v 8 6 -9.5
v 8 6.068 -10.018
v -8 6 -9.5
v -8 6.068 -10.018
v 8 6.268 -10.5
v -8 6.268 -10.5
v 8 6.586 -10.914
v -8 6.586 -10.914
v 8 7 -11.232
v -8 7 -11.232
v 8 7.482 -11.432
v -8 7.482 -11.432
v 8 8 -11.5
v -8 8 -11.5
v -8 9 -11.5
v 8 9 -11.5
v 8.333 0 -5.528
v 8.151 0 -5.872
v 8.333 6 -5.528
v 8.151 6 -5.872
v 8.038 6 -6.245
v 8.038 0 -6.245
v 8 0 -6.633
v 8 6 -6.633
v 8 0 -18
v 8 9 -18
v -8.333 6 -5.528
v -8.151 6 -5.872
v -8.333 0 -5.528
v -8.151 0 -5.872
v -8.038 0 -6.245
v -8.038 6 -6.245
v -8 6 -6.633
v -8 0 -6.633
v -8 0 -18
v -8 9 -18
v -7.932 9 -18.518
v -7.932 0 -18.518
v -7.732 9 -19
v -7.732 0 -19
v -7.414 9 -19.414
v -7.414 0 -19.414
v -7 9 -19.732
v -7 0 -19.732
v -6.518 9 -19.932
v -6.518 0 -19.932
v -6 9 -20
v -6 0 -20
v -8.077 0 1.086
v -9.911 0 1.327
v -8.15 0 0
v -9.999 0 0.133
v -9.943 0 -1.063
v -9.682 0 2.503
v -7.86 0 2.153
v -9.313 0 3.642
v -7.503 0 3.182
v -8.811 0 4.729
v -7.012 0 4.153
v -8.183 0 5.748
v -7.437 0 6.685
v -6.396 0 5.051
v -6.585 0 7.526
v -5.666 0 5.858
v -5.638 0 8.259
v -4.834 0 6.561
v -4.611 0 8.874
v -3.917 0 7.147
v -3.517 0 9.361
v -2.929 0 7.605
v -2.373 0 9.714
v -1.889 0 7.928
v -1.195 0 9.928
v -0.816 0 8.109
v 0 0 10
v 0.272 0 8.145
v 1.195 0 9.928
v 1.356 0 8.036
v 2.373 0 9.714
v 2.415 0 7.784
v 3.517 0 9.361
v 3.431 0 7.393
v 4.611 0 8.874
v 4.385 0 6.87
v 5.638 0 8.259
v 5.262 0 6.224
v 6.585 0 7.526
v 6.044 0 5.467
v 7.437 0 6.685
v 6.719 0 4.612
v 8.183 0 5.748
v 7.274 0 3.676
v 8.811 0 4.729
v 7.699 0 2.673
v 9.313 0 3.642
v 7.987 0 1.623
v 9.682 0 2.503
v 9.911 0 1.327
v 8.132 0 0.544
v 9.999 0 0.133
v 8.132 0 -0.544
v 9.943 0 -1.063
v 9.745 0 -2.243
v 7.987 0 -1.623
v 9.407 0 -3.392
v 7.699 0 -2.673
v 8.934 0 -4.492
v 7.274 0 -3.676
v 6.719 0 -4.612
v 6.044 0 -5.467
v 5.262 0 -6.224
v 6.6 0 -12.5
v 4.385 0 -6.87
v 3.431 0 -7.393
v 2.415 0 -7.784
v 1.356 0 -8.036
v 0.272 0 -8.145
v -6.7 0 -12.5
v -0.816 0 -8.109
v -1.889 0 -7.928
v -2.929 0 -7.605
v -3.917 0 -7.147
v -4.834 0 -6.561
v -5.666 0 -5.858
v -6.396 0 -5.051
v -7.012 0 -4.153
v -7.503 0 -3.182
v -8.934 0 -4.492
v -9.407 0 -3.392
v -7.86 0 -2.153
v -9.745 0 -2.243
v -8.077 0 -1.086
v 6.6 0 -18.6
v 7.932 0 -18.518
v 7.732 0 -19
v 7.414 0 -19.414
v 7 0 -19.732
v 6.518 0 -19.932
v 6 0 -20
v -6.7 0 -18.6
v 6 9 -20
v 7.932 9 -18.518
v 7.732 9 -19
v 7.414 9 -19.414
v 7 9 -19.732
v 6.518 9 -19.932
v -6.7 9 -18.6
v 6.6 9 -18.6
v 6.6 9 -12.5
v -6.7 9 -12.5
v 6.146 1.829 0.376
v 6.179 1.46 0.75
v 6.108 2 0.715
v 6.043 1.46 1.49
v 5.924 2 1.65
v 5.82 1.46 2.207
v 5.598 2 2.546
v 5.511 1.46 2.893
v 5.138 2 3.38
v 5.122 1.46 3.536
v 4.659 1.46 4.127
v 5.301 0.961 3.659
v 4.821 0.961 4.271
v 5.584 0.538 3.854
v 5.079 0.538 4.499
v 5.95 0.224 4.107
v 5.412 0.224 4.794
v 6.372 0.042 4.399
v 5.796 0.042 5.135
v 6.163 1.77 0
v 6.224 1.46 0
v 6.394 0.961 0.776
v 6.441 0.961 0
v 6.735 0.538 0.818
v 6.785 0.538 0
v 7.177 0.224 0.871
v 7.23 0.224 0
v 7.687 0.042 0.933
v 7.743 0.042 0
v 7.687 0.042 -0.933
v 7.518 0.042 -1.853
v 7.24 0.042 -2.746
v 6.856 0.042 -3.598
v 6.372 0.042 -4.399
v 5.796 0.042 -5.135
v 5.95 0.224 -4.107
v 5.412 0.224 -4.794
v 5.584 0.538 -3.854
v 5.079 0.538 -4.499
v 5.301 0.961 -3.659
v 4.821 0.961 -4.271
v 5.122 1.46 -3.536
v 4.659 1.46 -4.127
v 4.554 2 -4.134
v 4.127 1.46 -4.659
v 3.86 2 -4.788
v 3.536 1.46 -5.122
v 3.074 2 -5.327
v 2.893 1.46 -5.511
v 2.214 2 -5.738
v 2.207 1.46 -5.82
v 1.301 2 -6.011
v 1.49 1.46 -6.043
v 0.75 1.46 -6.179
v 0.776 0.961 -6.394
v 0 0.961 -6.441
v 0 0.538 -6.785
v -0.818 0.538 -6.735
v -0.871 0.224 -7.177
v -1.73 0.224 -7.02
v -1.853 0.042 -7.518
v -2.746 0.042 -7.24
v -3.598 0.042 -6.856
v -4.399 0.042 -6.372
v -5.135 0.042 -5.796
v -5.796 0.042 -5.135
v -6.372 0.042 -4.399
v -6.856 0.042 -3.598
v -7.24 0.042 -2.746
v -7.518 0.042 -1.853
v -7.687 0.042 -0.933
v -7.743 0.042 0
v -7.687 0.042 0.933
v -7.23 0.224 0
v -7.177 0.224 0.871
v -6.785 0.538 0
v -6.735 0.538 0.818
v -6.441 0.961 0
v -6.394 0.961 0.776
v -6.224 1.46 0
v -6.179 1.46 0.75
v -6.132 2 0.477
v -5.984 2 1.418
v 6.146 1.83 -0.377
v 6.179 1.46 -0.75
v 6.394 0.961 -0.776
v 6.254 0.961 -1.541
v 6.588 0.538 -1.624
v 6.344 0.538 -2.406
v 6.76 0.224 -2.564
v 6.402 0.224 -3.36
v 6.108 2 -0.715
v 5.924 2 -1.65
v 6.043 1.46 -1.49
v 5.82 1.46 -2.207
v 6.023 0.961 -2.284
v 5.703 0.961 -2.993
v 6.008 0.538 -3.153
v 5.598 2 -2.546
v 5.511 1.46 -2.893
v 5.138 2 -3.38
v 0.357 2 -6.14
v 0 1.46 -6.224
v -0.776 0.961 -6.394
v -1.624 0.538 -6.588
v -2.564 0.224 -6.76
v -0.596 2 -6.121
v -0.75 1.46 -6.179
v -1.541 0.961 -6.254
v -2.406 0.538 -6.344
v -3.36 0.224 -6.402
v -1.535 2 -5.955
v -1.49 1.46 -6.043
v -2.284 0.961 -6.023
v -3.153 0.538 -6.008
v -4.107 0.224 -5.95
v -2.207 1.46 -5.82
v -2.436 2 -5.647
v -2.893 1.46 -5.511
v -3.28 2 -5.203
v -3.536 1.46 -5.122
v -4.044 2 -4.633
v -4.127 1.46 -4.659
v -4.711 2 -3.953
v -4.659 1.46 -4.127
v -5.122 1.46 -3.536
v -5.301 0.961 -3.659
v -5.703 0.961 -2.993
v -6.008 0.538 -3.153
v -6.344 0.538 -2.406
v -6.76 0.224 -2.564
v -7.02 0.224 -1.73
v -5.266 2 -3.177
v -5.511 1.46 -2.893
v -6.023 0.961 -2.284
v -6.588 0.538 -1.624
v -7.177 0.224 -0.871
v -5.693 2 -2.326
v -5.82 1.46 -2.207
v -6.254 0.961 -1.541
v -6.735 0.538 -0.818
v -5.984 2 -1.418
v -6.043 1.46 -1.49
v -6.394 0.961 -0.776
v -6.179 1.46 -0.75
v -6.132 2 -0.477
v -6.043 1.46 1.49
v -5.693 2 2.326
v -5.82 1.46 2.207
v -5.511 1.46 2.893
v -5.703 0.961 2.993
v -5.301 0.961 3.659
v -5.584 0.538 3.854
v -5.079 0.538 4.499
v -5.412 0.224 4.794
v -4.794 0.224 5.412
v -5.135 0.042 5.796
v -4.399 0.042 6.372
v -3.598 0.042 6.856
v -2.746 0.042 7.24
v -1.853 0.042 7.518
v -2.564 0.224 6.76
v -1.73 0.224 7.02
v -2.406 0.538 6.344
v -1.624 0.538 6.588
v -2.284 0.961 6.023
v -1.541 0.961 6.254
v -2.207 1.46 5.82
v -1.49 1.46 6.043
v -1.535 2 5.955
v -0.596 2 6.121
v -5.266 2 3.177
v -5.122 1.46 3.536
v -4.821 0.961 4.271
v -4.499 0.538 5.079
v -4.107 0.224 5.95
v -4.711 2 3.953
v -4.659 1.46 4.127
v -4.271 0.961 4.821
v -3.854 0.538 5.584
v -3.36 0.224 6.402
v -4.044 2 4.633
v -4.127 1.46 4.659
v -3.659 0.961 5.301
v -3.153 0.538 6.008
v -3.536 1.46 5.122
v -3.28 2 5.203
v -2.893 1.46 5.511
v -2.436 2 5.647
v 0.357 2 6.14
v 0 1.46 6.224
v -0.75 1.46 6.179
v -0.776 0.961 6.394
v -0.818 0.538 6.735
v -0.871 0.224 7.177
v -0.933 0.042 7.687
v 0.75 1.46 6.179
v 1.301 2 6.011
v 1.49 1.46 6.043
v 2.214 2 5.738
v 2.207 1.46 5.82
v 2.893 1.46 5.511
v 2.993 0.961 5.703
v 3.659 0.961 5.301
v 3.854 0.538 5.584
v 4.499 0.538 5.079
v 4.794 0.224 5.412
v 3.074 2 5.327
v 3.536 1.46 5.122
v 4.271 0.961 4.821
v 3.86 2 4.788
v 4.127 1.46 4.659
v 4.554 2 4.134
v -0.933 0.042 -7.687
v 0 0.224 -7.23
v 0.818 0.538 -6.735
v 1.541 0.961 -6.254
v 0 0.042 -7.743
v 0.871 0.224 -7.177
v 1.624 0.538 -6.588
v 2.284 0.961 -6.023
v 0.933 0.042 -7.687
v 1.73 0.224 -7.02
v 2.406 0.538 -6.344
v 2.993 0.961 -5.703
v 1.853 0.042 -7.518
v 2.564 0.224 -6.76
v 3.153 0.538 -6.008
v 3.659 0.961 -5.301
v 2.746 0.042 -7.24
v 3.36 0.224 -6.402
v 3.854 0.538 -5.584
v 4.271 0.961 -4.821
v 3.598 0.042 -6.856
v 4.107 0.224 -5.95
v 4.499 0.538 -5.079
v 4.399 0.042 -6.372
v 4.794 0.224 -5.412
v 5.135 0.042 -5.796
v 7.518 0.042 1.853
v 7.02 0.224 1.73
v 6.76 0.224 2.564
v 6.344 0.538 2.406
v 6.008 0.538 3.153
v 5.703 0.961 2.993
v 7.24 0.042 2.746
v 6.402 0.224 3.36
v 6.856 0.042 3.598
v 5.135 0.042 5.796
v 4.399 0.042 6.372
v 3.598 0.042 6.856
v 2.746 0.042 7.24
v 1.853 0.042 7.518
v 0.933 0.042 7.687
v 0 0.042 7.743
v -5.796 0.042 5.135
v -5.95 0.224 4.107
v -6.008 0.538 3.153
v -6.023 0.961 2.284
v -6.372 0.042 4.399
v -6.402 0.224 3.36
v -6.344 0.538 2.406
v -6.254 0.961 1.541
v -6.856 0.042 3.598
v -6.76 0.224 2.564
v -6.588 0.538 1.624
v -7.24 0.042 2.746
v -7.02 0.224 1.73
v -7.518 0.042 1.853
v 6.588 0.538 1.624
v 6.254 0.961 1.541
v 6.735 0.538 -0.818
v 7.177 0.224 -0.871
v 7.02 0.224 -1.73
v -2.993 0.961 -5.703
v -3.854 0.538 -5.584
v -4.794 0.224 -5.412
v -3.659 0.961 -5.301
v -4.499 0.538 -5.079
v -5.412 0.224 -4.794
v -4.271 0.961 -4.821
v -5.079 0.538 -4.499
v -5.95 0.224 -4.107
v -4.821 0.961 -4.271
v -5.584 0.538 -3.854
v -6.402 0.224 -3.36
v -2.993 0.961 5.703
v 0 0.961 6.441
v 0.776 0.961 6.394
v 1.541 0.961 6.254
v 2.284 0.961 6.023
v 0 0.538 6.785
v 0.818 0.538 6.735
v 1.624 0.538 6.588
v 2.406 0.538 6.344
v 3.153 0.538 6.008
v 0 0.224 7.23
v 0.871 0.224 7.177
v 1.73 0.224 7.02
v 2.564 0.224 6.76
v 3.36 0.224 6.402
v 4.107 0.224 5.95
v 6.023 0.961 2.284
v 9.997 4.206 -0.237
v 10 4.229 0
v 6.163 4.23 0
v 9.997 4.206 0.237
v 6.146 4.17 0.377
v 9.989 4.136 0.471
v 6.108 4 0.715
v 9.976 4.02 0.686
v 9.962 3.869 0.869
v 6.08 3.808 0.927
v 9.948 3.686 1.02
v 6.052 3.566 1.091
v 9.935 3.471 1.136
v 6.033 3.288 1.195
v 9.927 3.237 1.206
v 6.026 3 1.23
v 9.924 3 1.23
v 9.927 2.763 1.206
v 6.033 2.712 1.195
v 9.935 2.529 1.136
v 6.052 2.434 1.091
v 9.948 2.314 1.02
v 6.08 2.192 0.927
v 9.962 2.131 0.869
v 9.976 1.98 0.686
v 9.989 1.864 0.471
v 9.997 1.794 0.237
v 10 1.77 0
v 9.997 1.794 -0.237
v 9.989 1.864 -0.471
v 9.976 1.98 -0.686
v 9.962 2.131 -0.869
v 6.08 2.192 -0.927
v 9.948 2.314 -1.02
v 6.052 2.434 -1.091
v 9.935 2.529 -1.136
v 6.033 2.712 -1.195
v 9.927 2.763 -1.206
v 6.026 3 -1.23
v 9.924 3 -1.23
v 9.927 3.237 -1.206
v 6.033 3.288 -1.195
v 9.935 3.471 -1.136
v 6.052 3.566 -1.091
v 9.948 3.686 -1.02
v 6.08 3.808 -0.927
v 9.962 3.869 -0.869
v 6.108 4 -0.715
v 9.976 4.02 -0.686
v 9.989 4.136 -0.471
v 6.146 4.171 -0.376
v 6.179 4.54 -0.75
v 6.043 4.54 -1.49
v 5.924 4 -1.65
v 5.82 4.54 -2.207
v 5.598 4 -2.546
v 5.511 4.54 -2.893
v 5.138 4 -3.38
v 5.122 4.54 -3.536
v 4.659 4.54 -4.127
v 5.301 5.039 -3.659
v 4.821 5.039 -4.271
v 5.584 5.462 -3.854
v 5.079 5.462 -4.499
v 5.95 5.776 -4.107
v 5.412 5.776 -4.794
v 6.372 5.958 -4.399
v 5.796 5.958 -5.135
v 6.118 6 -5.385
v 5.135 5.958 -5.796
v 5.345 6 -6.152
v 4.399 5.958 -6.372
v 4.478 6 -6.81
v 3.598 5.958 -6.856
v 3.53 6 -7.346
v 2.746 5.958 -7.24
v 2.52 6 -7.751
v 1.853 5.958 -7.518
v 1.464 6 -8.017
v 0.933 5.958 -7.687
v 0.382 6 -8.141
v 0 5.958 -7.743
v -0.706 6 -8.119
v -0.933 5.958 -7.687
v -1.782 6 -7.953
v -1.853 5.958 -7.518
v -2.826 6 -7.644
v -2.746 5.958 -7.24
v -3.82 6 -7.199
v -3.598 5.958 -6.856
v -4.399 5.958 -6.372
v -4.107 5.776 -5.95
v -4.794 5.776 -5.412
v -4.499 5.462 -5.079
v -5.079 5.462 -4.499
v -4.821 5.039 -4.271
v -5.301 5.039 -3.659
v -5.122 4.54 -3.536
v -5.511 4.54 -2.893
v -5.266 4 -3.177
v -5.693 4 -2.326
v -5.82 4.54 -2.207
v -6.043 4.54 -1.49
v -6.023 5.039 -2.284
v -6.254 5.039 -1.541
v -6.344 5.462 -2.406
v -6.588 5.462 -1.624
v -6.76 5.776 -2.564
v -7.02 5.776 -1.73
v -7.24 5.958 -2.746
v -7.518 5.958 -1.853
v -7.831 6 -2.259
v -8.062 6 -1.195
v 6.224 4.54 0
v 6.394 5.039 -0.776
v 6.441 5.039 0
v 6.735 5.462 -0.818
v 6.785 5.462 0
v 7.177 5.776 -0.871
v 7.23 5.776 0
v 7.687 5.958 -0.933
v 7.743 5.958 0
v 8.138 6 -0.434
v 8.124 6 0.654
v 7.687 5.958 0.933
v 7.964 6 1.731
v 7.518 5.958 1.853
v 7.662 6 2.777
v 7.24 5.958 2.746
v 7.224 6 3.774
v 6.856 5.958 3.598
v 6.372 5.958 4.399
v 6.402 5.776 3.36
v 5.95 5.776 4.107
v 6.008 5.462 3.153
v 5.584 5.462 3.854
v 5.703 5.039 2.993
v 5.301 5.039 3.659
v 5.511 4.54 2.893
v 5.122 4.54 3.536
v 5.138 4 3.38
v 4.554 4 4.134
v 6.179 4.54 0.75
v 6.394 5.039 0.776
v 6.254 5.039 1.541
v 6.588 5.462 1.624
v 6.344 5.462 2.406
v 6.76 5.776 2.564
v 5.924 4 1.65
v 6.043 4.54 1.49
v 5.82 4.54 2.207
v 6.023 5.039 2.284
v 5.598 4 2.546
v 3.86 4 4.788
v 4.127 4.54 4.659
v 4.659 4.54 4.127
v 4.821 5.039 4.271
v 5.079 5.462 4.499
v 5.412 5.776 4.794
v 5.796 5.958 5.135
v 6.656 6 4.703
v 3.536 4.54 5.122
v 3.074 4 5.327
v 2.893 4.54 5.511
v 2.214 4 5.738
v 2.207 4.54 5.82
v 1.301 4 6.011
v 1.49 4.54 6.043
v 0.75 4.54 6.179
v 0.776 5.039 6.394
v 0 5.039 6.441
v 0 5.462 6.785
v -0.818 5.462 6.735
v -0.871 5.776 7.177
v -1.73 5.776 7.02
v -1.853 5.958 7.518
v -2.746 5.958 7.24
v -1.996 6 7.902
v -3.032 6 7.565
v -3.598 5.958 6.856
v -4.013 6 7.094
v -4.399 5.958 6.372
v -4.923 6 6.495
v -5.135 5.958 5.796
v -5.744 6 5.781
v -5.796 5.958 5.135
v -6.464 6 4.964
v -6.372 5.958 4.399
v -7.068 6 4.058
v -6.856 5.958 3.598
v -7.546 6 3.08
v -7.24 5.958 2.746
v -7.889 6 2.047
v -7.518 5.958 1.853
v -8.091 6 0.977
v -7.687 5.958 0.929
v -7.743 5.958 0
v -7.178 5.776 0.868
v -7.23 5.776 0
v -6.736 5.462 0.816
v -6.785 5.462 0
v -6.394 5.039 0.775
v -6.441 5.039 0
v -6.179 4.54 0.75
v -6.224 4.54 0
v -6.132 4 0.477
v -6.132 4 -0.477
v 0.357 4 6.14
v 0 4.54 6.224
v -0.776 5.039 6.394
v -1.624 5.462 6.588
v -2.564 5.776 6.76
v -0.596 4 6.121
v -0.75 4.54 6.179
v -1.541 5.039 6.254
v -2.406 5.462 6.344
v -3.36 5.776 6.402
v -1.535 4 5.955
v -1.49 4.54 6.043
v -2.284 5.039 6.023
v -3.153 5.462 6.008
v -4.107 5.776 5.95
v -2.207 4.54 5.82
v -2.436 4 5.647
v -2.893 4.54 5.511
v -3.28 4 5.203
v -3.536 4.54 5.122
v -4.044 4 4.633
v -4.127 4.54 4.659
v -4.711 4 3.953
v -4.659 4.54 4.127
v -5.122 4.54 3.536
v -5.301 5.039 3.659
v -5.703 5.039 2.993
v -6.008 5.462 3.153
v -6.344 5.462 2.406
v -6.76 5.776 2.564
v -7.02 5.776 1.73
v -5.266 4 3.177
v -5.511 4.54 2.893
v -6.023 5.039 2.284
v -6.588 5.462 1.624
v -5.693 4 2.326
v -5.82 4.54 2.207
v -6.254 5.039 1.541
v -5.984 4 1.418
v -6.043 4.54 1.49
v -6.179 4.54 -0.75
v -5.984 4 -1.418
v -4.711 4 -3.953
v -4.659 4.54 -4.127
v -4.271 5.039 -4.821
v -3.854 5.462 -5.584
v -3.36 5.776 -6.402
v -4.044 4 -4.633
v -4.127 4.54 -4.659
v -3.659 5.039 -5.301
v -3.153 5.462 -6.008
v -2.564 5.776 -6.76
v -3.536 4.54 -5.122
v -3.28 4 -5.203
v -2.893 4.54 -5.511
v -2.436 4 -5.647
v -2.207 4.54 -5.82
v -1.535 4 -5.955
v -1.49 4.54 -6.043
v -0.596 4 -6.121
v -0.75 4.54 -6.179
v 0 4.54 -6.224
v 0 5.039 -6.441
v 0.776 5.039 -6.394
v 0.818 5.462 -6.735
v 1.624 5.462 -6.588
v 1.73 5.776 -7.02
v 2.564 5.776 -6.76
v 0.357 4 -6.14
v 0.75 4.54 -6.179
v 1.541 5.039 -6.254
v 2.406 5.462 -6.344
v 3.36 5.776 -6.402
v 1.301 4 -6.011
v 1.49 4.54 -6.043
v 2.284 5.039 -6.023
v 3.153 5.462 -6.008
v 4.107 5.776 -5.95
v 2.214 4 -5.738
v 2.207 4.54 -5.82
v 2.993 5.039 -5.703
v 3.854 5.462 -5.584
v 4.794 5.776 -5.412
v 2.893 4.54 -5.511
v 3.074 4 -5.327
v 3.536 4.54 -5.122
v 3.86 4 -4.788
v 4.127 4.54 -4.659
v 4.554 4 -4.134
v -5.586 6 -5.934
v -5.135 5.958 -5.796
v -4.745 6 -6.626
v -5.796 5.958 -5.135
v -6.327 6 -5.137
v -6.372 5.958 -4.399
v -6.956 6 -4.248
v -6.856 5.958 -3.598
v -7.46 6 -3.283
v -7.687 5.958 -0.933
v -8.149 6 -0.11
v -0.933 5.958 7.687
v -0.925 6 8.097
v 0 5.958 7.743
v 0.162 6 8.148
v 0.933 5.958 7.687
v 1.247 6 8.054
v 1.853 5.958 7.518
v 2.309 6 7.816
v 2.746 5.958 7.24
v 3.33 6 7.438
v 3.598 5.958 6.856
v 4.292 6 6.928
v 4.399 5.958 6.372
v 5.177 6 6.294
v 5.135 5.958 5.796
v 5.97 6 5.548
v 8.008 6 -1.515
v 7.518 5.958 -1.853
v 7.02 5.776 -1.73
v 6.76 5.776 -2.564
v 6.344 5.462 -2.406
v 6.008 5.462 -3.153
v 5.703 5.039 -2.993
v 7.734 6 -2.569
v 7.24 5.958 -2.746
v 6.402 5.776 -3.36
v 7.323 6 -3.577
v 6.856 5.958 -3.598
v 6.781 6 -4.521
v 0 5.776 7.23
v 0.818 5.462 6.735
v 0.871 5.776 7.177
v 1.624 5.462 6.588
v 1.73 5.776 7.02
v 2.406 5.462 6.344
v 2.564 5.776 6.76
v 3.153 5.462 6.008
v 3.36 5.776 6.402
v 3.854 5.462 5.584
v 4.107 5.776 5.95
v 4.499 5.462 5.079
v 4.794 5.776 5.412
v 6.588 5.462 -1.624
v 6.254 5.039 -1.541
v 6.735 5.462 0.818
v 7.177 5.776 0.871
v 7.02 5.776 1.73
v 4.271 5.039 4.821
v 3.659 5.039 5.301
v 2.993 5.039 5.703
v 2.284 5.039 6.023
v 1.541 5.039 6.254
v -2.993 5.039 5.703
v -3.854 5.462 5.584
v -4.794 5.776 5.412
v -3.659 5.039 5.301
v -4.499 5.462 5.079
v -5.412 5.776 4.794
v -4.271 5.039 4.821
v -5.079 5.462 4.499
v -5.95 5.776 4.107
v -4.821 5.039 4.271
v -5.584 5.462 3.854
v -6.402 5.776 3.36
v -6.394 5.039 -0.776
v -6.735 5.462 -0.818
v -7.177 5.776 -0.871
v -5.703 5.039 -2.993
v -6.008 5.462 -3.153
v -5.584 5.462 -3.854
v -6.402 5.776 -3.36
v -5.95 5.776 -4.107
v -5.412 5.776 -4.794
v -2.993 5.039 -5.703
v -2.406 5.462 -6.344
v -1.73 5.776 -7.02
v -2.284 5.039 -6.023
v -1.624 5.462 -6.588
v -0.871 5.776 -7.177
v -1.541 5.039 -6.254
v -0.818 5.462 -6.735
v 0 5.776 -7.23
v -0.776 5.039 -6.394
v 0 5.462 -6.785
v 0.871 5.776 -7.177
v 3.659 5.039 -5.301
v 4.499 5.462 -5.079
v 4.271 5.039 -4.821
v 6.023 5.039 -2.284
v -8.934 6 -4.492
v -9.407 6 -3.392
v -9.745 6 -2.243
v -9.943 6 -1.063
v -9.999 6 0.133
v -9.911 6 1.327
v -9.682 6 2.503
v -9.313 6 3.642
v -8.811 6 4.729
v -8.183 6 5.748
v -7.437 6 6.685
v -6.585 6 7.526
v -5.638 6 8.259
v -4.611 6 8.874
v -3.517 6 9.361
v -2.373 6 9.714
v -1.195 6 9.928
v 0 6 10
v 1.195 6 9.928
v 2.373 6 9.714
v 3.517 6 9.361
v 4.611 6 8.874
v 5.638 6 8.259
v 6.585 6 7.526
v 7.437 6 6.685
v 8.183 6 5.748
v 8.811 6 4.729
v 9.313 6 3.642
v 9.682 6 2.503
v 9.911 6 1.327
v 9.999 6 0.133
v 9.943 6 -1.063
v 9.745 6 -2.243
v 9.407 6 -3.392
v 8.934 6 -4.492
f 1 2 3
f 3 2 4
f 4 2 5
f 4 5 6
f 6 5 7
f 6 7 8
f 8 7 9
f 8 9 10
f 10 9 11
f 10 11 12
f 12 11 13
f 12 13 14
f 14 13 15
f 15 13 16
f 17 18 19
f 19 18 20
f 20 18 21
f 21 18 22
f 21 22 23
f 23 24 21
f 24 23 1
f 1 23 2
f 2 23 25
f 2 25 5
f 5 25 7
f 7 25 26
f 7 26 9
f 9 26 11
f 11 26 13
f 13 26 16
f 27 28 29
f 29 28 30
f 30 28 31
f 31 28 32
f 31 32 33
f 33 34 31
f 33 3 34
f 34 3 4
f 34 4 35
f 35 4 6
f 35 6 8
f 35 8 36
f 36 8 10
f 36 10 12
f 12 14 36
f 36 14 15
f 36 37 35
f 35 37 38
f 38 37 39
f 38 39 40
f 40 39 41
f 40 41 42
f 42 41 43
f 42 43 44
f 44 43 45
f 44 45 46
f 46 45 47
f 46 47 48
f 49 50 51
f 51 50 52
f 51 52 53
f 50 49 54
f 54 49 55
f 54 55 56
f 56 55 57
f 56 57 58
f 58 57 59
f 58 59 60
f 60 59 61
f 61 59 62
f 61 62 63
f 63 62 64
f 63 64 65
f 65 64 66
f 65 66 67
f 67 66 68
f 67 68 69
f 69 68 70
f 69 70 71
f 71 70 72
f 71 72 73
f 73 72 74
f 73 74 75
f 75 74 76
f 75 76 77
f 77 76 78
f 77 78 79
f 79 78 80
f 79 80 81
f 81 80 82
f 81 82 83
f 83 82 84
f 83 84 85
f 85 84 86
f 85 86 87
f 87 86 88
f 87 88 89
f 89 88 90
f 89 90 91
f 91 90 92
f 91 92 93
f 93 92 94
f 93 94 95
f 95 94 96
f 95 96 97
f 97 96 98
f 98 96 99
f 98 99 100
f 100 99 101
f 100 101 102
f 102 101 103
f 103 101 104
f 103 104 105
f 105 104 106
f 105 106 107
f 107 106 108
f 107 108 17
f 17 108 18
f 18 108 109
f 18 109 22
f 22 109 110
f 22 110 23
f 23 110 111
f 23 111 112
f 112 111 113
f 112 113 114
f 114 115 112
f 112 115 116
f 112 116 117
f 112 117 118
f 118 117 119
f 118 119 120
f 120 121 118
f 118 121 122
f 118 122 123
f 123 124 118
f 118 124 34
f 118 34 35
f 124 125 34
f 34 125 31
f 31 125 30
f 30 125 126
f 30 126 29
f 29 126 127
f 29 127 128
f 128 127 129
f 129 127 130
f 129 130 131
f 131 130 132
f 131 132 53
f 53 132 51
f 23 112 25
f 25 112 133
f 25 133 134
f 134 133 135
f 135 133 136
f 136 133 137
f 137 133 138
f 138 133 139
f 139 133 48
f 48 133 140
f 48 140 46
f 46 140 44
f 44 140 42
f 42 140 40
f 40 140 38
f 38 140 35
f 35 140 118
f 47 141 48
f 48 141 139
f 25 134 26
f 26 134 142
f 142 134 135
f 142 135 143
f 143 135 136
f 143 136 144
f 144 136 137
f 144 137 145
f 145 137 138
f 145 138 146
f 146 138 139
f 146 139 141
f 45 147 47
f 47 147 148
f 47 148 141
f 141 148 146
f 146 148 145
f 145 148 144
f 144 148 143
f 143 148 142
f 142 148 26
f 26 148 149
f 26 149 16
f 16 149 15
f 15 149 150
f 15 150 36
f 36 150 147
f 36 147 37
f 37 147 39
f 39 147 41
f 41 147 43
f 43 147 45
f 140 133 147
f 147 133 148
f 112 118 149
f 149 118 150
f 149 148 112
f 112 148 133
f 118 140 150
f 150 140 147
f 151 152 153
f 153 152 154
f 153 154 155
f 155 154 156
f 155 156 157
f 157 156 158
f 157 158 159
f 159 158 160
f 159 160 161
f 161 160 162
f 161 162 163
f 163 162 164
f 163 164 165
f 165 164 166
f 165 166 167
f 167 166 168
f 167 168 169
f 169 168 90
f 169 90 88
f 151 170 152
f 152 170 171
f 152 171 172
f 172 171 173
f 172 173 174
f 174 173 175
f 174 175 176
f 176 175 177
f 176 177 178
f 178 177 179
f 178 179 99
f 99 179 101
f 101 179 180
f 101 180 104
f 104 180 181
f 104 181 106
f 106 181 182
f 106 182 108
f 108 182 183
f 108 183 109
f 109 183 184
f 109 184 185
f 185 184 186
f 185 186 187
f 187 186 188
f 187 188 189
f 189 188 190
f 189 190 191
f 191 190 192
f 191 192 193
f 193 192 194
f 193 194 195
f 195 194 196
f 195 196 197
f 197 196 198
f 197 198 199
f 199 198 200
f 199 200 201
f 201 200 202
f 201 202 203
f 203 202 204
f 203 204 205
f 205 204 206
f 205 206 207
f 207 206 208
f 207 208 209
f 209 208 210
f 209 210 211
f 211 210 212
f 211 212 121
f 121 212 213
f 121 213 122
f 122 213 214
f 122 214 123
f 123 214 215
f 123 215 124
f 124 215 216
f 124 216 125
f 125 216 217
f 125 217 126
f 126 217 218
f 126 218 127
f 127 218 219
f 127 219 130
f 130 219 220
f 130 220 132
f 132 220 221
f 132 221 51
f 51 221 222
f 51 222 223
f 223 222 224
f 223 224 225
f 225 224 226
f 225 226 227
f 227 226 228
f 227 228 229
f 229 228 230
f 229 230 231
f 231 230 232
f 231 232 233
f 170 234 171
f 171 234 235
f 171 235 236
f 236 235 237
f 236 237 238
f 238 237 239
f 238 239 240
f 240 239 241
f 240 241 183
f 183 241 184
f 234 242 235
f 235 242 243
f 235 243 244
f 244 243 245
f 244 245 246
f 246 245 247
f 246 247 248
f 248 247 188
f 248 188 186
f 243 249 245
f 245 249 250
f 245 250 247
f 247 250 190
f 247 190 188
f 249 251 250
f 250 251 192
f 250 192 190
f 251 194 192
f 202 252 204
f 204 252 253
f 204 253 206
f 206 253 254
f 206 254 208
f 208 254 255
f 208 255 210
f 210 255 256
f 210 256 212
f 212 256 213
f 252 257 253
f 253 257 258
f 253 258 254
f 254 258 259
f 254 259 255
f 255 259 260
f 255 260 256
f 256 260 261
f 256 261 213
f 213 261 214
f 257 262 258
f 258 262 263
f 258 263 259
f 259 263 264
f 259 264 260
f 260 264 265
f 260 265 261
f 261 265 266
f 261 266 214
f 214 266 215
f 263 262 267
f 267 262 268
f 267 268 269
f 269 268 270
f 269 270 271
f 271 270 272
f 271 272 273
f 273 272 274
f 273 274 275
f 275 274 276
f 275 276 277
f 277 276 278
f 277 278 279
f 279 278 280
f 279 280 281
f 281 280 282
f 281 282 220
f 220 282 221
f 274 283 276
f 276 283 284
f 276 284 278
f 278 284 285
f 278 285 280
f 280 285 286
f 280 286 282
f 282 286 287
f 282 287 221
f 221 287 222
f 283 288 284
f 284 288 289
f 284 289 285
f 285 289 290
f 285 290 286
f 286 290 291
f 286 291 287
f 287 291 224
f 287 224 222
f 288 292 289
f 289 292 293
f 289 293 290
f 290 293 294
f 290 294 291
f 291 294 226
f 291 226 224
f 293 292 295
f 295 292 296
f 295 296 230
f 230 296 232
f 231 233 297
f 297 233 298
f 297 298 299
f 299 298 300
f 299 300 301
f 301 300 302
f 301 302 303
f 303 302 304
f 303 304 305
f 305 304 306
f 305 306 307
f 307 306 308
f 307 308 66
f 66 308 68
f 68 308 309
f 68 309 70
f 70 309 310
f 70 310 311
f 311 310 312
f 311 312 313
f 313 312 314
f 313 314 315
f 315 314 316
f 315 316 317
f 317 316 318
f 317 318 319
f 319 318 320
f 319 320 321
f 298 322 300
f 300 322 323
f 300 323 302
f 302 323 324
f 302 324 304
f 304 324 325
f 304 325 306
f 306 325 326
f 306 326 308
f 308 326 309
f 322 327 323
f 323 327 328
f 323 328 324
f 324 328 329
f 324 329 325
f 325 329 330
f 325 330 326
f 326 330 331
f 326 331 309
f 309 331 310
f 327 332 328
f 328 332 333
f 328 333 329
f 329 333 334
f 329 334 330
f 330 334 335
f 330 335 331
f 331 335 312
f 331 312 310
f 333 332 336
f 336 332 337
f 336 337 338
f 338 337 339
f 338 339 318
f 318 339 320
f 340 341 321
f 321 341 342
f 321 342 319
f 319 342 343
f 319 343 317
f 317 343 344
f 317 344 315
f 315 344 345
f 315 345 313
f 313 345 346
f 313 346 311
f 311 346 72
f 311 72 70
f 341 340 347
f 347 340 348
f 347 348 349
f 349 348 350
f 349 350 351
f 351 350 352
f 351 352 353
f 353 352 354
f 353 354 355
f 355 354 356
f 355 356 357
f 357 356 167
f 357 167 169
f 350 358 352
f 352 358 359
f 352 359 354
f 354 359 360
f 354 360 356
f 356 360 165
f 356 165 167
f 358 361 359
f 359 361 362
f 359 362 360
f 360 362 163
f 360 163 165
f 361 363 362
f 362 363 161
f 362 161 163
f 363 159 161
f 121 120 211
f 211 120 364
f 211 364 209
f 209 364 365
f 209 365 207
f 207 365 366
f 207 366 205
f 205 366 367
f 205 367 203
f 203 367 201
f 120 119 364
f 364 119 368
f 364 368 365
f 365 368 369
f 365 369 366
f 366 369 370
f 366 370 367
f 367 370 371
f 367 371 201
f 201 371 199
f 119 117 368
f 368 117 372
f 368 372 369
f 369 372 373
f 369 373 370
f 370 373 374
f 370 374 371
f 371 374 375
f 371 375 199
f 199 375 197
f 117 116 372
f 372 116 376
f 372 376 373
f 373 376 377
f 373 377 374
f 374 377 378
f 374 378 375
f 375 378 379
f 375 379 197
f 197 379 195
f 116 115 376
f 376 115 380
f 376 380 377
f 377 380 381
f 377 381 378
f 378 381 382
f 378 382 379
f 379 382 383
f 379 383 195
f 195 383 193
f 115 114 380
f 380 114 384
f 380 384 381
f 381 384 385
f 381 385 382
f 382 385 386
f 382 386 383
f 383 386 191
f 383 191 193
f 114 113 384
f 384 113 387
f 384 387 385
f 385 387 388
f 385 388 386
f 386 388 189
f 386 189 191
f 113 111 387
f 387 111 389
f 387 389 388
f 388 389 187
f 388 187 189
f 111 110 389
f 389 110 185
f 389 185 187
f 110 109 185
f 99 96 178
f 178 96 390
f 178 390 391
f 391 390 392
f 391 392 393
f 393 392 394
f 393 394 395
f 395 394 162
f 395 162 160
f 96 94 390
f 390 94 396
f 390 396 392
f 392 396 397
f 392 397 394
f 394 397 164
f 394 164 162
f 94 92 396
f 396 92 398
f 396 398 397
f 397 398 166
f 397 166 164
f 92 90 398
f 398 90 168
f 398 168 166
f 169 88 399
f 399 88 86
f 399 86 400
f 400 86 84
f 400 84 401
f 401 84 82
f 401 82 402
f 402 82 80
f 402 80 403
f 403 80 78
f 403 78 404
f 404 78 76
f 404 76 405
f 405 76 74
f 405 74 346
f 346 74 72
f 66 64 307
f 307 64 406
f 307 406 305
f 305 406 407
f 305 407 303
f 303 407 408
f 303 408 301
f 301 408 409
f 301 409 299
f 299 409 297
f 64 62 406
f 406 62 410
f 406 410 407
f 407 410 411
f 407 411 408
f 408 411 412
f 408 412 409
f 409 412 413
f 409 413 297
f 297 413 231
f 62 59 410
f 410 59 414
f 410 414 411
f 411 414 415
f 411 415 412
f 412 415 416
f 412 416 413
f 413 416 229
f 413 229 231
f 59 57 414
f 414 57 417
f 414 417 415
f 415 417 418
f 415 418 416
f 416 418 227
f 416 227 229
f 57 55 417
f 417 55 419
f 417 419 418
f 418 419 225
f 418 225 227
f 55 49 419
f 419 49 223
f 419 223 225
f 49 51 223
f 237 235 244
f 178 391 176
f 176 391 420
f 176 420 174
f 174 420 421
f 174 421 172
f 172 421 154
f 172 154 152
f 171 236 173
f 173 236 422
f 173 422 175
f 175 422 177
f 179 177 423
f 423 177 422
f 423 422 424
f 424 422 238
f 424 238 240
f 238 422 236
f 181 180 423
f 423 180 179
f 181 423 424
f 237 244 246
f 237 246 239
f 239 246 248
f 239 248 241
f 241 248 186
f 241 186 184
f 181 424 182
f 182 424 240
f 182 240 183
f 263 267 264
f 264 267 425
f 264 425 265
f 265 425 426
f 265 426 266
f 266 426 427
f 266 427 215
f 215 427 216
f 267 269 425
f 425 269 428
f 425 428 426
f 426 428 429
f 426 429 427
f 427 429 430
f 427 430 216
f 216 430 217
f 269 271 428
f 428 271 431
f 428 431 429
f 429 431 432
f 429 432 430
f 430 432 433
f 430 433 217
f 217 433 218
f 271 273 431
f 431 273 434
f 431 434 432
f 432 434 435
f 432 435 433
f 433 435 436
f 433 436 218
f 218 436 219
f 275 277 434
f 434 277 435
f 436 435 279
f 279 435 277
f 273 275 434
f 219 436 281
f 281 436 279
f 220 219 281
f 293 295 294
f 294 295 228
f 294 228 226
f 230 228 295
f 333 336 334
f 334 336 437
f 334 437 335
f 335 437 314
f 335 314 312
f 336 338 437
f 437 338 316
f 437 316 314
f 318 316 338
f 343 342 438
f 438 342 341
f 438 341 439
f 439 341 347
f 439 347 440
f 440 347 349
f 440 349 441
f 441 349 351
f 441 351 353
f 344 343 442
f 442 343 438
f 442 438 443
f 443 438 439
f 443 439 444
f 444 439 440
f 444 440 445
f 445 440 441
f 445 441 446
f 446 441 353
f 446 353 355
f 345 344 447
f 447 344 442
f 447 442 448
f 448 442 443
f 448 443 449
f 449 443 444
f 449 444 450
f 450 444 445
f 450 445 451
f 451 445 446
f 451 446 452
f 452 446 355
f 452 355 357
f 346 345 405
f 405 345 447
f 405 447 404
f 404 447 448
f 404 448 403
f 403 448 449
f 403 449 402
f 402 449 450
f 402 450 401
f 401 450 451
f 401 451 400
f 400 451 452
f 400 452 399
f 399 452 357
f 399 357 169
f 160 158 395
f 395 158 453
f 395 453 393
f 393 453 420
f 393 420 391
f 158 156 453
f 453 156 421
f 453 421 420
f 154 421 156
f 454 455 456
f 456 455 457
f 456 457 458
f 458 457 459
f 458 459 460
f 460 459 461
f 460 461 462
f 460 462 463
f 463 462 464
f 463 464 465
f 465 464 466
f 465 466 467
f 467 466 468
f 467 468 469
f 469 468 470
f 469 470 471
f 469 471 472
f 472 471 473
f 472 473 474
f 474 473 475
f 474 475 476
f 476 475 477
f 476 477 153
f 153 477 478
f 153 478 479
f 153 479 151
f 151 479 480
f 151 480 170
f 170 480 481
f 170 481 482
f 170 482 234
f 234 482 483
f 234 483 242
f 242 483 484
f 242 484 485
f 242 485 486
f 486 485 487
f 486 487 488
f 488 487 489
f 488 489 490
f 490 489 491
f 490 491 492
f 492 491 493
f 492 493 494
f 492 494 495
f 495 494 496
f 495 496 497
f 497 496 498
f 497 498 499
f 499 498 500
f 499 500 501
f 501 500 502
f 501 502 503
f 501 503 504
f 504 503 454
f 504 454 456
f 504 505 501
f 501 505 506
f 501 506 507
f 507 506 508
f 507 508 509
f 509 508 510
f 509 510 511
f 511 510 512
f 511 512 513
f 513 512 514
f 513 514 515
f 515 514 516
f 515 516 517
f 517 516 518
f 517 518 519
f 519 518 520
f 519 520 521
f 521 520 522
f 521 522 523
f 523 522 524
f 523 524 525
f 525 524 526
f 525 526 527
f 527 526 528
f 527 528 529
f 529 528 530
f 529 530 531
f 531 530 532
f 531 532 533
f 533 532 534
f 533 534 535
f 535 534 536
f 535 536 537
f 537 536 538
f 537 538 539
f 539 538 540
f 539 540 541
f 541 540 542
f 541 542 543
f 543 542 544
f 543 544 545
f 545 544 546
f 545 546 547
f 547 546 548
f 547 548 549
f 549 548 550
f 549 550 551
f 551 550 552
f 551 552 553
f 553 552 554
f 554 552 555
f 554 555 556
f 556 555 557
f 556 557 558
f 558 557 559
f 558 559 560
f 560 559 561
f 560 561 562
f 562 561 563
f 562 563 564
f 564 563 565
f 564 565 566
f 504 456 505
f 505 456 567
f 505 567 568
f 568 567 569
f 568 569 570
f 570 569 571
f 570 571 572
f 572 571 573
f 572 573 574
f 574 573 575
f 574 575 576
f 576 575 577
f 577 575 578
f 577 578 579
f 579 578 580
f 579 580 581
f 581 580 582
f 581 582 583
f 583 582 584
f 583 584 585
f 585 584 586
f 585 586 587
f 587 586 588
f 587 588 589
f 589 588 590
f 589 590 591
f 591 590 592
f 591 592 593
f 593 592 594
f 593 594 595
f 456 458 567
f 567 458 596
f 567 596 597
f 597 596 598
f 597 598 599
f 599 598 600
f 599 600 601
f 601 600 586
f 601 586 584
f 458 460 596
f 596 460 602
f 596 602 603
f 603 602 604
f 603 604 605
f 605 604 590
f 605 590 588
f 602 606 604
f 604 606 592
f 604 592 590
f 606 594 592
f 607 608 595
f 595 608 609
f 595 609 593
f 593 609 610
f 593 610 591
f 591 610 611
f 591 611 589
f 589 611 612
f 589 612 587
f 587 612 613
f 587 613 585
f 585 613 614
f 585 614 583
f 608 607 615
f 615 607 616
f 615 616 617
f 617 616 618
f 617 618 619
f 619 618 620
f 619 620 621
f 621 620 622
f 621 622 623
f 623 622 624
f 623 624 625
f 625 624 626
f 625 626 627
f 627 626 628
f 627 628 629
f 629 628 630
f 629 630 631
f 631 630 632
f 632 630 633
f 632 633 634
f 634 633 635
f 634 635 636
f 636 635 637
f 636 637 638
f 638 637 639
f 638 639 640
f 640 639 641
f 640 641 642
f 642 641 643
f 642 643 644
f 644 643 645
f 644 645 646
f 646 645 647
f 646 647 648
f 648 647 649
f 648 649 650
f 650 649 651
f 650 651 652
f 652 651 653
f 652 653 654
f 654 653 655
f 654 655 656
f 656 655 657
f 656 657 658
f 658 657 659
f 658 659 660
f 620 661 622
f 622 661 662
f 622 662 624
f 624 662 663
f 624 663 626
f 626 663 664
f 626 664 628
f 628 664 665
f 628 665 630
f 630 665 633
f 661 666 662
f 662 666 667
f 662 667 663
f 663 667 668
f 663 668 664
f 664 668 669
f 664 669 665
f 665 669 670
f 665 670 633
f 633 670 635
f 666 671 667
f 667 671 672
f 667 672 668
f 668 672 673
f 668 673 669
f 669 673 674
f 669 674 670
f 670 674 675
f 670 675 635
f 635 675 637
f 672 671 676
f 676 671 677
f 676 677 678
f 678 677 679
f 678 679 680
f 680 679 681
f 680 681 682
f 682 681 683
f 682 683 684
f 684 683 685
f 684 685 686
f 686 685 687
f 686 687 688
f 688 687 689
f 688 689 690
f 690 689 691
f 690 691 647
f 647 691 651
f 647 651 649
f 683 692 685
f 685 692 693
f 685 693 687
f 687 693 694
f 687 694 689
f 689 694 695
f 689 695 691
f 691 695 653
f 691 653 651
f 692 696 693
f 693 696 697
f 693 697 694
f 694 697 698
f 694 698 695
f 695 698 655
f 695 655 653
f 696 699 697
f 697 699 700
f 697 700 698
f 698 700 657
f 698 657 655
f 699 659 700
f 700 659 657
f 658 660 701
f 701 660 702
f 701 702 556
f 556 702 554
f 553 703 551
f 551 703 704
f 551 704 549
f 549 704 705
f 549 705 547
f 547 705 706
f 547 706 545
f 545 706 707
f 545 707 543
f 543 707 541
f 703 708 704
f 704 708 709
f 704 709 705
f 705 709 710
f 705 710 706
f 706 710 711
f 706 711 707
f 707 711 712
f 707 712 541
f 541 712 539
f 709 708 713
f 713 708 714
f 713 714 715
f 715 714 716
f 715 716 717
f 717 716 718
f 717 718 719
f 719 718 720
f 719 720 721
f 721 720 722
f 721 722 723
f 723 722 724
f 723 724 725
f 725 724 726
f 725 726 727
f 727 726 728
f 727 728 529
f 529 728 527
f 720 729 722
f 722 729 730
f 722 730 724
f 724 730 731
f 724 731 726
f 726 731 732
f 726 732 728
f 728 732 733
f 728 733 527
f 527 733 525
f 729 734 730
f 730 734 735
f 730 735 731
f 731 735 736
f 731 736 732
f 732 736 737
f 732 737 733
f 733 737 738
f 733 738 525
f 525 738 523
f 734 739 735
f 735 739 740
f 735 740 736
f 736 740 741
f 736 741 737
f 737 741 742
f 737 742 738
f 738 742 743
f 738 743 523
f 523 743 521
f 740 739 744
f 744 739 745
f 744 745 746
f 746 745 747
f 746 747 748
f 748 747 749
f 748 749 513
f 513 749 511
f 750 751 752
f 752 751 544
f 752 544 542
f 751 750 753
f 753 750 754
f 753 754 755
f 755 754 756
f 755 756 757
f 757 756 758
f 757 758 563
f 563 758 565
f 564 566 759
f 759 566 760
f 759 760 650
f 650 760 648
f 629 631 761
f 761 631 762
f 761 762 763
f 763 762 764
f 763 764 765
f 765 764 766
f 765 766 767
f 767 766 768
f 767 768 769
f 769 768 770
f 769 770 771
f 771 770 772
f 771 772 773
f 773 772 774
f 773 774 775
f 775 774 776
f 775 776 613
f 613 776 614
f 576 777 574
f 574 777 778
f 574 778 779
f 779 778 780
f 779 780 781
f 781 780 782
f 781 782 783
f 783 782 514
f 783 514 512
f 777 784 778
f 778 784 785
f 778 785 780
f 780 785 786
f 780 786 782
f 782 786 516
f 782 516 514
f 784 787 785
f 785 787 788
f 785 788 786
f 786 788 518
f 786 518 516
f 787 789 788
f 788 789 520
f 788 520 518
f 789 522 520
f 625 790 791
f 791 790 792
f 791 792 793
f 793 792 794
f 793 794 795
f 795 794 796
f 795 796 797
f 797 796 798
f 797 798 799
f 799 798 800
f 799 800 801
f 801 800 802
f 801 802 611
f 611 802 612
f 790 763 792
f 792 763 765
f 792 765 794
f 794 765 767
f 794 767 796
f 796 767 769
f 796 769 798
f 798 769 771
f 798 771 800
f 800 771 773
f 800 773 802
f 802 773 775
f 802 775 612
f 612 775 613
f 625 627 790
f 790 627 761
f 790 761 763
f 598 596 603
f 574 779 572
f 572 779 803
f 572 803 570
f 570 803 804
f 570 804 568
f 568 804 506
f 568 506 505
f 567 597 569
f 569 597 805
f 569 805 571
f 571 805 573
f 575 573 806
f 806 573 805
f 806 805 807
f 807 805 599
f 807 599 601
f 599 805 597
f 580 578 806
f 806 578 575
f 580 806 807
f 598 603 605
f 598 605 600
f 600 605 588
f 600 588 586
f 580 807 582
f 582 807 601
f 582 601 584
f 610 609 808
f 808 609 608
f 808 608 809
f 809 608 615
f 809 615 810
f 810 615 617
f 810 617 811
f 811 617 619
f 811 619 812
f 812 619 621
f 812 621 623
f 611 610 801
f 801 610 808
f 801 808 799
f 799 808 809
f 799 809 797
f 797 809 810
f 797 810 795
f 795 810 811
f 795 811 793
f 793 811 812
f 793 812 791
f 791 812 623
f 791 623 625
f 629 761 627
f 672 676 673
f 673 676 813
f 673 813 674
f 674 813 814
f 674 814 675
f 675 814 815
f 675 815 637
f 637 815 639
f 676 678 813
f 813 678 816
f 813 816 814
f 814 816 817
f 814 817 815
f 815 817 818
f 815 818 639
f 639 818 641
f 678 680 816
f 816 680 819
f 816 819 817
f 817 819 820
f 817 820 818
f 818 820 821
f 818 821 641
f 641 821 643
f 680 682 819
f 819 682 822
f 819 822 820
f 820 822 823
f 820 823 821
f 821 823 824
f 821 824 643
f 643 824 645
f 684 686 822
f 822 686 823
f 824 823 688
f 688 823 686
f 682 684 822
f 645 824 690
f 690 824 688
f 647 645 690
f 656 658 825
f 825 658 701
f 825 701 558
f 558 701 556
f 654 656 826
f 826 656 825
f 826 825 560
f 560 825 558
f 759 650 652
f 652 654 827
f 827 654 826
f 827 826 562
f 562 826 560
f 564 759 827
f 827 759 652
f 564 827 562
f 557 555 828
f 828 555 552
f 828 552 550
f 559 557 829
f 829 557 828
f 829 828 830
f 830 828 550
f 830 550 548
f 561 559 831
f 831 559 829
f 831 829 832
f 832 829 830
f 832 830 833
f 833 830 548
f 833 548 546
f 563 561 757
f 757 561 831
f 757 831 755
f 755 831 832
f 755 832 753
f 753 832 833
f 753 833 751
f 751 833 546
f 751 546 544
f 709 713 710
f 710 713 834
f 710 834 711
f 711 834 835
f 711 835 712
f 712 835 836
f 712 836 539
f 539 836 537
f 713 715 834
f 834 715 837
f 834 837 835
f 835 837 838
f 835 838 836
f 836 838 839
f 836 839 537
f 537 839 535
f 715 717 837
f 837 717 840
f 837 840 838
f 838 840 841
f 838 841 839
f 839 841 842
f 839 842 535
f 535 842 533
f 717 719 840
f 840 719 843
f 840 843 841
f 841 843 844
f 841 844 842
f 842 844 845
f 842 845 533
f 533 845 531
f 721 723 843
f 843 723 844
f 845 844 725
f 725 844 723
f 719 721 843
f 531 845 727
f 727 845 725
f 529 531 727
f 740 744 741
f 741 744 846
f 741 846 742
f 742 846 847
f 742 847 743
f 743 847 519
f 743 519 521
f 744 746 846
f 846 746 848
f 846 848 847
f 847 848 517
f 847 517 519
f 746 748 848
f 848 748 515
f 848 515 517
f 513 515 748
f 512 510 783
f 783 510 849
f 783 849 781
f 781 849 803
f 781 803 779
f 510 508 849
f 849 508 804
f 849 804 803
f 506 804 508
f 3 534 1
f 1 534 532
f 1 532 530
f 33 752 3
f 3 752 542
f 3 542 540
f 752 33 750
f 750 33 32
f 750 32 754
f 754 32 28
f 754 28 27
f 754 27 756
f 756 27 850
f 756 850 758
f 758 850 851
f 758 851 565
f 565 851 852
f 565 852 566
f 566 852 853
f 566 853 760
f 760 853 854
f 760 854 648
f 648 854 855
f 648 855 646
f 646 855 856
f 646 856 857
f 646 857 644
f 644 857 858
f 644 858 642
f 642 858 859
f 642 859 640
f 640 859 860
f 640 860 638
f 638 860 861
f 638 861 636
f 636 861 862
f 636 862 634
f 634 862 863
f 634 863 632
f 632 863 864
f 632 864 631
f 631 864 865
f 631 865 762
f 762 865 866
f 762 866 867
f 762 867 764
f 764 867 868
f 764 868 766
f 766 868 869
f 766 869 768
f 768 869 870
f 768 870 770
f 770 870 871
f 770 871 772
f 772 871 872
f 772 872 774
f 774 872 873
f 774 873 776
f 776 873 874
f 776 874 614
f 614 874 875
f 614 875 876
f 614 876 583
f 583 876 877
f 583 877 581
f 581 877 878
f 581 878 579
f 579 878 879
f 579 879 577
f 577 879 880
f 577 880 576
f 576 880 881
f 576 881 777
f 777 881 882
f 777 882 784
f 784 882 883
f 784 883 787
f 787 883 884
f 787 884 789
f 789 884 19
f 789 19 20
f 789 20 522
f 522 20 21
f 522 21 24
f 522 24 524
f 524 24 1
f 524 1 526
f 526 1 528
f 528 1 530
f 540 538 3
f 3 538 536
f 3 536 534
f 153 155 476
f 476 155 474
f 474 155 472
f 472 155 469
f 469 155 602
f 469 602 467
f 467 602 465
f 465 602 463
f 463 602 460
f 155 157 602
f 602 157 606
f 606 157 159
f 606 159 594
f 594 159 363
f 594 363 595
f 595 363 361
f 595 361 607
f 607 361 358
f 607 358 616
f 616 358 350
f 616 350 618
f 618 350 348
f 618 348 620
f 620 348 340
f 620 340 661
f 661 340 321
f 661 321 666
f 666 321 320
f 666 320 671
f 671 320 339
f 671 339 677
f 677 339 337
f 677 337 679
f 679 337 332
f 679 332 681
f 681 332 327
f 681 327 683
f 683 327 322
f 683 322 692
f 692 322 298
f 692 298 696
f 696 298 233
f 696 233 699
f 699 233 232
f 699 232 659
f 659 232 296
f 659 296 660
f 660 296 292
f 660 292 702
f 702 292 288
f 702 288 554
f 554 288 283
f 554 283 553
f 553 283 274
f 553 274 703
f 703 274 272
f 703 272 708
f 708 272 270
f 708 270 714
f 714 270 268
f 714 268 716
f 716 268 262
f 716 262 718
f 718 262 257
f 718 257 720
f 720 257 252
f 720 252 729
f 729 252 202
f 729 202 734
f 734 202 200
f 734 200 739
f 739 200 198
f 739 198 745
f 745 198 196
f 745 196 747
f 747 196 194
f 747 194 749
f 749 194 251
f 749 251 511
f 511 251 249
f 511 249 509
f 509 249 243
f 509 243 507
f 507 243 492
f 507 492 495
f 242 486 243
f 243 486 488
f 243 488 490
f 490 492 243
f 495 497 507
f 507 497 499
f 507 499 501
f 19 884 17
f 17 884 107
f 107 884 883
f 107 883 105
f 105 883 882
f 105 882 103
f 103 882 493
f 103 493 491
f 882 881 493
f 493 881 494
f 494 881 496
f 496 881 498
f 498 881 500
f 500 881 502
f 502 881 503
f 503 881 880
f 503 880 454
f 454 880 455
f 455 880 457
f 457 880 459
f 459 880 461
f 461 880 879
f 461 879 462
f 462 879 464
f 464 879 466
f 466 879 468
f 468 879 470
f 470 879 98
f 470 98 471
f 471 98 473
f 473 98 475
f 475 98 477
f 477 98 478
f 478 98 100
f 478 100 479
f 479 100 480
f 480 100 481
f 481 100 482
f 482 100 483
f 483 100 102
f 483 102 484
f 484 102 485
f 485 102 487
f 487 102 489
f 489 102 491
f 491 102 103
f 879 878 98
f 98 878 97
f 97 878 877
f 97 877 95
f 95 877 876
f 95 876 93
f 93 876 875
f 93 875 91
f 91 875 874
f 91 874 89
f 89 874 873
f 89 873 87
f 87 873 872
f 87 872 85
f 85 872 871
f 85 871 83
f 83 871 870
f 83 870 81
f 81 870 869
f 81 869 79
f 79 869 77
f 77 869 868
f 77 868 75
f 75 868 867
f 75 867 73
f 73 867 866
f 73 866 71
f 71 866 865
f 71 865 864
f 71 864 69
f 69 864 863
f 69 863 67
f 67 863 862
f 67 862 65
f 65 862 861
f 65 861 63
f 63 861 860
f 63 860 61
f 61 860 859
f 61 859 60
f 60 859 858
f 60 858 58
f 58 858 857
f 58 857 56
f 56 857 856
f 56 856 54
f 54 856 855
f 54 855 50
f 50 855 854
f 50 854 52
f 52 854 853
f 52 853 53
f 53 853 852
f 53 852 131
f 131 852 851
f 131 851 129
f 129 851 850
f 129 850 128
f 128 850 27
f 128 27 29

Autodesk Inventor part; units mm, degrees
ref_plane "YZ Plane" through (0, 0, 0) normal (1, 0, 0) x (0, 1, 0)
sketch "Boceto1" plane through (0, 0, 0) normal (0, 1, 0) x (-1, 0, 0)
  circle A0 centre (0, 0) radius 10
  dimension "d0" = 20
extrude "Extrusión1" add sketch "Boceto1" along normal blind 6
ref_plane "Plano de trabajo6" through (0, 0, -10) normal (0, 0, 1) x (1, 0, 0)
sketch "Boceto3" plane through (0, 0, -10) normal (0, 0, 1) x (1, 0, 0)
  line L0 (10, 0) -> (-10, 0) projected
  line L1 (8, 0) -> (8, 10)
  line L2 (10, 10) -> (-10, 10) projected
  line L3 (8, 10) -> (-8, 10)
  line L4 (-8, 10) -> (-8, 0)
  line L5 (-8, 0) -> (8, 0)
  point P0 (0, 0)
  dimension "d10" = 8
  dimension "d11" = 10
  dimension "d12" = 16
extrude "Extrusión2" add sketch "Boceto3" along normal blind 5 and the other way blind 7
sketch "Boceto4" plane through (0, 6, 0) normal (0, 1, 0) x (1, 0, 0)
  line L0 (-8, 17) -> (8, 17) projected
  line L1 (-6.7, 15.6) -> (6.6, 15.6)
  line L2 (6.6, 15.6) -> (6.6, 9.5)
  line L3 (6.6, 9.5) -> (-6.7, 9.5)
  line L4 (-6.7, 9.5) -> (-6.7, 15.6)
  line L5 (-6.6, 18.5) -> (6.6, 12.5) construction
  line L6 (6.6, 18.5) -> (-6.6, 12.5) construction
  point P0 (0, 0)
  dimension "d19" = 13.3
  dimension "d20" = 6.1
extrude "Extrusión3" cut sketch "Boceto4" against normal blind 10
sketch "Boceto5" plane through (0, 6, 0) normal (0, 1, 0) x (1, 0, 0)
  arc A0 (-8, 6) -> (8, 6) centre (0, 0) ccw projected
hole "Agujero2" at (0, 6, 0) direction (0, -1, 0) diameter 12.3 end through all
ref_plane "Plano de trabajo5" through (10, 0, 0) normal (1, 0, 0) x (0, 1, 0)
sketch "Boceto6" plane through (10, 0, 0) normal (1, 0, 0) x (0, 1, 0)
  line L0 (0, 0) -> (3, 0)
  dimension "d32" = 3
hole "Agujero3" at (10, 3, 0) direction (-1, 0, 0) diameter 2.459 depth 5 thread size "M3x0.5" class "6H" standard "ANSI Metric M Profile"
sketch "Boceto7" plane through (0, 0, -5) normal (0, 0, 1) x (1, 0, 0)
  line L0 (-8, 6) -> (-8.3333, 6) projected
  line L1 (8, 10) -> (-8, 10)
  line L2 (-8, 10) -> (-8, 6)
  line L3 (-8, 6) -> (8, 6)
  line L4 (8, 6) -> (8, 10)
  point P0 (0, 0)
extrude "Extrusión4" cut sketch "Boceto7" against normal blind 17
fillet "Empalme4" radius 2 2 edges at (0, 6, -6.15) (0, 0, -6.15)
sketch "Boceto8" plane through (0, 6, 0) normal (0, 1, 0) x (1, 0, 0)
  line L0 (-8, 6) -> (-8, 17) projected
  line L1 (-8, 17) -> (8, 17)
  line L2 (8, 17) -> (8, 8.5)
  line L3 (8, 8.5) -> (-8, 8.5)
  line L4 (-8, 8.5) -> (-8, 17)
  point P0 (0, 0)
  dimension "d45" = 16
  dimension "d46" = 8.5
extrude "Extrusión5" add sketch "Boceto8" along normal blind 3
sketch "Boceto9" plane through (0, 0, -17) normal (0, 0, -1) x (-1, 0, 0)
  line L0 (-8, 9) -> (-8, 0) projected
  line L1 (8, 0) -> (8, 9) projected
  line L2 (-8, 9) -> (8, 9)
  line L3 (8, 9) -> (8, 0)
  line L4 (8, 0) -> (-8, 0)
  line L5 (-8, 0) -> (-8, 9)
  point P0 (0, 0)
extrude "Extrusión6" add sketch "Boceto9" along normal blind 3
sketch "Boceto10" plane through (6.6, 0, -9.5) normal (0, 0, -1) x (-1, 0, 0)
  line L0 (0, 6) -> (0, 0) projected
  line L1 (13.3, 6) -> (13.3, 0) projected
  line L2 (0, 6) -> (13.3, 6)
  line L3 (13.3, 6) -> (13.3, 0)
  line L4 (13.3, 0) -> (0, 0)
  line L5 (0, 0) -> (0, 6)
  point P0 (6.6, 0)
extrude "Extrusión7" add sketch "Boceto10" along normal blind 3
sketch "Boceto11" plane through (-6.7, 0, -15.6) normal (0, 0, 1) x (1, 0, 0)
  line L0 (13.3, 6) -> (0, 6) projected
  line L1 (13.3, 0) -> (0, 0) projected
  line L2 (0, 6) -> (13.3, 6)
  line L3 (13.3, 6) -> (13.3, 0)
  line L4 (13.3, 0) -> (0, 0)
  line L5 (0, 0) -> (0, 6)
  point P0 (6.7, 0)
extrude "Extrusión8" cut sketch "Boceto11" against normal blind 3
sketch "Boceto12" plane through (-8, 6, -8.5) normal (0, 0, 1) x (1, 0, 0)
  line L0 (16, 0) -> (16, 3) projected
  line L1 (16, 3) -> (0, 3)
  line L2 (0, 3) -> (0, 0)
  line L3 (0, 0) -> (16, 0)
  line L4 (16, 0) -> (16, 3)
  point P0 (8, -6)
extrude "Extrusión9" cut sketch "Boceto12" against normal blind 3
sketch "Boceto13" plane through (0, 6, 0) normal (0, -1, 0) x (1, 0, 0)
  line L0 (6.6, -12.5) -> (-6.7, -12.5) projected
  line L1 (-6.7, -12.5) -> (-6.7, -18.6) projected
  line L2 (6.6, -12.5) -> (-6.7, -12.5)
  line L3 (-6.7, -12.5) -> (-6.7, -18.6)
  line L4 (-6.7, -18.6) -> (6.6, -18.6)
  line L5 (6.6, -18.6) -> (6.6, -12.5)
  point P0 (0, 0)
extrude "Extrusión10" cut sketch "Boceto13" against normal blind 3
fillet "Empalme5" radius 2 4 edges at (8, 4.5, -20) (-8, 4.5, -20) (-8, 3, -6) (8, 3, -6)
fillet "Empalme6" radius 2 1 edges at (0, 6, -11.5)
properties part number "Final Carrera Y0"
